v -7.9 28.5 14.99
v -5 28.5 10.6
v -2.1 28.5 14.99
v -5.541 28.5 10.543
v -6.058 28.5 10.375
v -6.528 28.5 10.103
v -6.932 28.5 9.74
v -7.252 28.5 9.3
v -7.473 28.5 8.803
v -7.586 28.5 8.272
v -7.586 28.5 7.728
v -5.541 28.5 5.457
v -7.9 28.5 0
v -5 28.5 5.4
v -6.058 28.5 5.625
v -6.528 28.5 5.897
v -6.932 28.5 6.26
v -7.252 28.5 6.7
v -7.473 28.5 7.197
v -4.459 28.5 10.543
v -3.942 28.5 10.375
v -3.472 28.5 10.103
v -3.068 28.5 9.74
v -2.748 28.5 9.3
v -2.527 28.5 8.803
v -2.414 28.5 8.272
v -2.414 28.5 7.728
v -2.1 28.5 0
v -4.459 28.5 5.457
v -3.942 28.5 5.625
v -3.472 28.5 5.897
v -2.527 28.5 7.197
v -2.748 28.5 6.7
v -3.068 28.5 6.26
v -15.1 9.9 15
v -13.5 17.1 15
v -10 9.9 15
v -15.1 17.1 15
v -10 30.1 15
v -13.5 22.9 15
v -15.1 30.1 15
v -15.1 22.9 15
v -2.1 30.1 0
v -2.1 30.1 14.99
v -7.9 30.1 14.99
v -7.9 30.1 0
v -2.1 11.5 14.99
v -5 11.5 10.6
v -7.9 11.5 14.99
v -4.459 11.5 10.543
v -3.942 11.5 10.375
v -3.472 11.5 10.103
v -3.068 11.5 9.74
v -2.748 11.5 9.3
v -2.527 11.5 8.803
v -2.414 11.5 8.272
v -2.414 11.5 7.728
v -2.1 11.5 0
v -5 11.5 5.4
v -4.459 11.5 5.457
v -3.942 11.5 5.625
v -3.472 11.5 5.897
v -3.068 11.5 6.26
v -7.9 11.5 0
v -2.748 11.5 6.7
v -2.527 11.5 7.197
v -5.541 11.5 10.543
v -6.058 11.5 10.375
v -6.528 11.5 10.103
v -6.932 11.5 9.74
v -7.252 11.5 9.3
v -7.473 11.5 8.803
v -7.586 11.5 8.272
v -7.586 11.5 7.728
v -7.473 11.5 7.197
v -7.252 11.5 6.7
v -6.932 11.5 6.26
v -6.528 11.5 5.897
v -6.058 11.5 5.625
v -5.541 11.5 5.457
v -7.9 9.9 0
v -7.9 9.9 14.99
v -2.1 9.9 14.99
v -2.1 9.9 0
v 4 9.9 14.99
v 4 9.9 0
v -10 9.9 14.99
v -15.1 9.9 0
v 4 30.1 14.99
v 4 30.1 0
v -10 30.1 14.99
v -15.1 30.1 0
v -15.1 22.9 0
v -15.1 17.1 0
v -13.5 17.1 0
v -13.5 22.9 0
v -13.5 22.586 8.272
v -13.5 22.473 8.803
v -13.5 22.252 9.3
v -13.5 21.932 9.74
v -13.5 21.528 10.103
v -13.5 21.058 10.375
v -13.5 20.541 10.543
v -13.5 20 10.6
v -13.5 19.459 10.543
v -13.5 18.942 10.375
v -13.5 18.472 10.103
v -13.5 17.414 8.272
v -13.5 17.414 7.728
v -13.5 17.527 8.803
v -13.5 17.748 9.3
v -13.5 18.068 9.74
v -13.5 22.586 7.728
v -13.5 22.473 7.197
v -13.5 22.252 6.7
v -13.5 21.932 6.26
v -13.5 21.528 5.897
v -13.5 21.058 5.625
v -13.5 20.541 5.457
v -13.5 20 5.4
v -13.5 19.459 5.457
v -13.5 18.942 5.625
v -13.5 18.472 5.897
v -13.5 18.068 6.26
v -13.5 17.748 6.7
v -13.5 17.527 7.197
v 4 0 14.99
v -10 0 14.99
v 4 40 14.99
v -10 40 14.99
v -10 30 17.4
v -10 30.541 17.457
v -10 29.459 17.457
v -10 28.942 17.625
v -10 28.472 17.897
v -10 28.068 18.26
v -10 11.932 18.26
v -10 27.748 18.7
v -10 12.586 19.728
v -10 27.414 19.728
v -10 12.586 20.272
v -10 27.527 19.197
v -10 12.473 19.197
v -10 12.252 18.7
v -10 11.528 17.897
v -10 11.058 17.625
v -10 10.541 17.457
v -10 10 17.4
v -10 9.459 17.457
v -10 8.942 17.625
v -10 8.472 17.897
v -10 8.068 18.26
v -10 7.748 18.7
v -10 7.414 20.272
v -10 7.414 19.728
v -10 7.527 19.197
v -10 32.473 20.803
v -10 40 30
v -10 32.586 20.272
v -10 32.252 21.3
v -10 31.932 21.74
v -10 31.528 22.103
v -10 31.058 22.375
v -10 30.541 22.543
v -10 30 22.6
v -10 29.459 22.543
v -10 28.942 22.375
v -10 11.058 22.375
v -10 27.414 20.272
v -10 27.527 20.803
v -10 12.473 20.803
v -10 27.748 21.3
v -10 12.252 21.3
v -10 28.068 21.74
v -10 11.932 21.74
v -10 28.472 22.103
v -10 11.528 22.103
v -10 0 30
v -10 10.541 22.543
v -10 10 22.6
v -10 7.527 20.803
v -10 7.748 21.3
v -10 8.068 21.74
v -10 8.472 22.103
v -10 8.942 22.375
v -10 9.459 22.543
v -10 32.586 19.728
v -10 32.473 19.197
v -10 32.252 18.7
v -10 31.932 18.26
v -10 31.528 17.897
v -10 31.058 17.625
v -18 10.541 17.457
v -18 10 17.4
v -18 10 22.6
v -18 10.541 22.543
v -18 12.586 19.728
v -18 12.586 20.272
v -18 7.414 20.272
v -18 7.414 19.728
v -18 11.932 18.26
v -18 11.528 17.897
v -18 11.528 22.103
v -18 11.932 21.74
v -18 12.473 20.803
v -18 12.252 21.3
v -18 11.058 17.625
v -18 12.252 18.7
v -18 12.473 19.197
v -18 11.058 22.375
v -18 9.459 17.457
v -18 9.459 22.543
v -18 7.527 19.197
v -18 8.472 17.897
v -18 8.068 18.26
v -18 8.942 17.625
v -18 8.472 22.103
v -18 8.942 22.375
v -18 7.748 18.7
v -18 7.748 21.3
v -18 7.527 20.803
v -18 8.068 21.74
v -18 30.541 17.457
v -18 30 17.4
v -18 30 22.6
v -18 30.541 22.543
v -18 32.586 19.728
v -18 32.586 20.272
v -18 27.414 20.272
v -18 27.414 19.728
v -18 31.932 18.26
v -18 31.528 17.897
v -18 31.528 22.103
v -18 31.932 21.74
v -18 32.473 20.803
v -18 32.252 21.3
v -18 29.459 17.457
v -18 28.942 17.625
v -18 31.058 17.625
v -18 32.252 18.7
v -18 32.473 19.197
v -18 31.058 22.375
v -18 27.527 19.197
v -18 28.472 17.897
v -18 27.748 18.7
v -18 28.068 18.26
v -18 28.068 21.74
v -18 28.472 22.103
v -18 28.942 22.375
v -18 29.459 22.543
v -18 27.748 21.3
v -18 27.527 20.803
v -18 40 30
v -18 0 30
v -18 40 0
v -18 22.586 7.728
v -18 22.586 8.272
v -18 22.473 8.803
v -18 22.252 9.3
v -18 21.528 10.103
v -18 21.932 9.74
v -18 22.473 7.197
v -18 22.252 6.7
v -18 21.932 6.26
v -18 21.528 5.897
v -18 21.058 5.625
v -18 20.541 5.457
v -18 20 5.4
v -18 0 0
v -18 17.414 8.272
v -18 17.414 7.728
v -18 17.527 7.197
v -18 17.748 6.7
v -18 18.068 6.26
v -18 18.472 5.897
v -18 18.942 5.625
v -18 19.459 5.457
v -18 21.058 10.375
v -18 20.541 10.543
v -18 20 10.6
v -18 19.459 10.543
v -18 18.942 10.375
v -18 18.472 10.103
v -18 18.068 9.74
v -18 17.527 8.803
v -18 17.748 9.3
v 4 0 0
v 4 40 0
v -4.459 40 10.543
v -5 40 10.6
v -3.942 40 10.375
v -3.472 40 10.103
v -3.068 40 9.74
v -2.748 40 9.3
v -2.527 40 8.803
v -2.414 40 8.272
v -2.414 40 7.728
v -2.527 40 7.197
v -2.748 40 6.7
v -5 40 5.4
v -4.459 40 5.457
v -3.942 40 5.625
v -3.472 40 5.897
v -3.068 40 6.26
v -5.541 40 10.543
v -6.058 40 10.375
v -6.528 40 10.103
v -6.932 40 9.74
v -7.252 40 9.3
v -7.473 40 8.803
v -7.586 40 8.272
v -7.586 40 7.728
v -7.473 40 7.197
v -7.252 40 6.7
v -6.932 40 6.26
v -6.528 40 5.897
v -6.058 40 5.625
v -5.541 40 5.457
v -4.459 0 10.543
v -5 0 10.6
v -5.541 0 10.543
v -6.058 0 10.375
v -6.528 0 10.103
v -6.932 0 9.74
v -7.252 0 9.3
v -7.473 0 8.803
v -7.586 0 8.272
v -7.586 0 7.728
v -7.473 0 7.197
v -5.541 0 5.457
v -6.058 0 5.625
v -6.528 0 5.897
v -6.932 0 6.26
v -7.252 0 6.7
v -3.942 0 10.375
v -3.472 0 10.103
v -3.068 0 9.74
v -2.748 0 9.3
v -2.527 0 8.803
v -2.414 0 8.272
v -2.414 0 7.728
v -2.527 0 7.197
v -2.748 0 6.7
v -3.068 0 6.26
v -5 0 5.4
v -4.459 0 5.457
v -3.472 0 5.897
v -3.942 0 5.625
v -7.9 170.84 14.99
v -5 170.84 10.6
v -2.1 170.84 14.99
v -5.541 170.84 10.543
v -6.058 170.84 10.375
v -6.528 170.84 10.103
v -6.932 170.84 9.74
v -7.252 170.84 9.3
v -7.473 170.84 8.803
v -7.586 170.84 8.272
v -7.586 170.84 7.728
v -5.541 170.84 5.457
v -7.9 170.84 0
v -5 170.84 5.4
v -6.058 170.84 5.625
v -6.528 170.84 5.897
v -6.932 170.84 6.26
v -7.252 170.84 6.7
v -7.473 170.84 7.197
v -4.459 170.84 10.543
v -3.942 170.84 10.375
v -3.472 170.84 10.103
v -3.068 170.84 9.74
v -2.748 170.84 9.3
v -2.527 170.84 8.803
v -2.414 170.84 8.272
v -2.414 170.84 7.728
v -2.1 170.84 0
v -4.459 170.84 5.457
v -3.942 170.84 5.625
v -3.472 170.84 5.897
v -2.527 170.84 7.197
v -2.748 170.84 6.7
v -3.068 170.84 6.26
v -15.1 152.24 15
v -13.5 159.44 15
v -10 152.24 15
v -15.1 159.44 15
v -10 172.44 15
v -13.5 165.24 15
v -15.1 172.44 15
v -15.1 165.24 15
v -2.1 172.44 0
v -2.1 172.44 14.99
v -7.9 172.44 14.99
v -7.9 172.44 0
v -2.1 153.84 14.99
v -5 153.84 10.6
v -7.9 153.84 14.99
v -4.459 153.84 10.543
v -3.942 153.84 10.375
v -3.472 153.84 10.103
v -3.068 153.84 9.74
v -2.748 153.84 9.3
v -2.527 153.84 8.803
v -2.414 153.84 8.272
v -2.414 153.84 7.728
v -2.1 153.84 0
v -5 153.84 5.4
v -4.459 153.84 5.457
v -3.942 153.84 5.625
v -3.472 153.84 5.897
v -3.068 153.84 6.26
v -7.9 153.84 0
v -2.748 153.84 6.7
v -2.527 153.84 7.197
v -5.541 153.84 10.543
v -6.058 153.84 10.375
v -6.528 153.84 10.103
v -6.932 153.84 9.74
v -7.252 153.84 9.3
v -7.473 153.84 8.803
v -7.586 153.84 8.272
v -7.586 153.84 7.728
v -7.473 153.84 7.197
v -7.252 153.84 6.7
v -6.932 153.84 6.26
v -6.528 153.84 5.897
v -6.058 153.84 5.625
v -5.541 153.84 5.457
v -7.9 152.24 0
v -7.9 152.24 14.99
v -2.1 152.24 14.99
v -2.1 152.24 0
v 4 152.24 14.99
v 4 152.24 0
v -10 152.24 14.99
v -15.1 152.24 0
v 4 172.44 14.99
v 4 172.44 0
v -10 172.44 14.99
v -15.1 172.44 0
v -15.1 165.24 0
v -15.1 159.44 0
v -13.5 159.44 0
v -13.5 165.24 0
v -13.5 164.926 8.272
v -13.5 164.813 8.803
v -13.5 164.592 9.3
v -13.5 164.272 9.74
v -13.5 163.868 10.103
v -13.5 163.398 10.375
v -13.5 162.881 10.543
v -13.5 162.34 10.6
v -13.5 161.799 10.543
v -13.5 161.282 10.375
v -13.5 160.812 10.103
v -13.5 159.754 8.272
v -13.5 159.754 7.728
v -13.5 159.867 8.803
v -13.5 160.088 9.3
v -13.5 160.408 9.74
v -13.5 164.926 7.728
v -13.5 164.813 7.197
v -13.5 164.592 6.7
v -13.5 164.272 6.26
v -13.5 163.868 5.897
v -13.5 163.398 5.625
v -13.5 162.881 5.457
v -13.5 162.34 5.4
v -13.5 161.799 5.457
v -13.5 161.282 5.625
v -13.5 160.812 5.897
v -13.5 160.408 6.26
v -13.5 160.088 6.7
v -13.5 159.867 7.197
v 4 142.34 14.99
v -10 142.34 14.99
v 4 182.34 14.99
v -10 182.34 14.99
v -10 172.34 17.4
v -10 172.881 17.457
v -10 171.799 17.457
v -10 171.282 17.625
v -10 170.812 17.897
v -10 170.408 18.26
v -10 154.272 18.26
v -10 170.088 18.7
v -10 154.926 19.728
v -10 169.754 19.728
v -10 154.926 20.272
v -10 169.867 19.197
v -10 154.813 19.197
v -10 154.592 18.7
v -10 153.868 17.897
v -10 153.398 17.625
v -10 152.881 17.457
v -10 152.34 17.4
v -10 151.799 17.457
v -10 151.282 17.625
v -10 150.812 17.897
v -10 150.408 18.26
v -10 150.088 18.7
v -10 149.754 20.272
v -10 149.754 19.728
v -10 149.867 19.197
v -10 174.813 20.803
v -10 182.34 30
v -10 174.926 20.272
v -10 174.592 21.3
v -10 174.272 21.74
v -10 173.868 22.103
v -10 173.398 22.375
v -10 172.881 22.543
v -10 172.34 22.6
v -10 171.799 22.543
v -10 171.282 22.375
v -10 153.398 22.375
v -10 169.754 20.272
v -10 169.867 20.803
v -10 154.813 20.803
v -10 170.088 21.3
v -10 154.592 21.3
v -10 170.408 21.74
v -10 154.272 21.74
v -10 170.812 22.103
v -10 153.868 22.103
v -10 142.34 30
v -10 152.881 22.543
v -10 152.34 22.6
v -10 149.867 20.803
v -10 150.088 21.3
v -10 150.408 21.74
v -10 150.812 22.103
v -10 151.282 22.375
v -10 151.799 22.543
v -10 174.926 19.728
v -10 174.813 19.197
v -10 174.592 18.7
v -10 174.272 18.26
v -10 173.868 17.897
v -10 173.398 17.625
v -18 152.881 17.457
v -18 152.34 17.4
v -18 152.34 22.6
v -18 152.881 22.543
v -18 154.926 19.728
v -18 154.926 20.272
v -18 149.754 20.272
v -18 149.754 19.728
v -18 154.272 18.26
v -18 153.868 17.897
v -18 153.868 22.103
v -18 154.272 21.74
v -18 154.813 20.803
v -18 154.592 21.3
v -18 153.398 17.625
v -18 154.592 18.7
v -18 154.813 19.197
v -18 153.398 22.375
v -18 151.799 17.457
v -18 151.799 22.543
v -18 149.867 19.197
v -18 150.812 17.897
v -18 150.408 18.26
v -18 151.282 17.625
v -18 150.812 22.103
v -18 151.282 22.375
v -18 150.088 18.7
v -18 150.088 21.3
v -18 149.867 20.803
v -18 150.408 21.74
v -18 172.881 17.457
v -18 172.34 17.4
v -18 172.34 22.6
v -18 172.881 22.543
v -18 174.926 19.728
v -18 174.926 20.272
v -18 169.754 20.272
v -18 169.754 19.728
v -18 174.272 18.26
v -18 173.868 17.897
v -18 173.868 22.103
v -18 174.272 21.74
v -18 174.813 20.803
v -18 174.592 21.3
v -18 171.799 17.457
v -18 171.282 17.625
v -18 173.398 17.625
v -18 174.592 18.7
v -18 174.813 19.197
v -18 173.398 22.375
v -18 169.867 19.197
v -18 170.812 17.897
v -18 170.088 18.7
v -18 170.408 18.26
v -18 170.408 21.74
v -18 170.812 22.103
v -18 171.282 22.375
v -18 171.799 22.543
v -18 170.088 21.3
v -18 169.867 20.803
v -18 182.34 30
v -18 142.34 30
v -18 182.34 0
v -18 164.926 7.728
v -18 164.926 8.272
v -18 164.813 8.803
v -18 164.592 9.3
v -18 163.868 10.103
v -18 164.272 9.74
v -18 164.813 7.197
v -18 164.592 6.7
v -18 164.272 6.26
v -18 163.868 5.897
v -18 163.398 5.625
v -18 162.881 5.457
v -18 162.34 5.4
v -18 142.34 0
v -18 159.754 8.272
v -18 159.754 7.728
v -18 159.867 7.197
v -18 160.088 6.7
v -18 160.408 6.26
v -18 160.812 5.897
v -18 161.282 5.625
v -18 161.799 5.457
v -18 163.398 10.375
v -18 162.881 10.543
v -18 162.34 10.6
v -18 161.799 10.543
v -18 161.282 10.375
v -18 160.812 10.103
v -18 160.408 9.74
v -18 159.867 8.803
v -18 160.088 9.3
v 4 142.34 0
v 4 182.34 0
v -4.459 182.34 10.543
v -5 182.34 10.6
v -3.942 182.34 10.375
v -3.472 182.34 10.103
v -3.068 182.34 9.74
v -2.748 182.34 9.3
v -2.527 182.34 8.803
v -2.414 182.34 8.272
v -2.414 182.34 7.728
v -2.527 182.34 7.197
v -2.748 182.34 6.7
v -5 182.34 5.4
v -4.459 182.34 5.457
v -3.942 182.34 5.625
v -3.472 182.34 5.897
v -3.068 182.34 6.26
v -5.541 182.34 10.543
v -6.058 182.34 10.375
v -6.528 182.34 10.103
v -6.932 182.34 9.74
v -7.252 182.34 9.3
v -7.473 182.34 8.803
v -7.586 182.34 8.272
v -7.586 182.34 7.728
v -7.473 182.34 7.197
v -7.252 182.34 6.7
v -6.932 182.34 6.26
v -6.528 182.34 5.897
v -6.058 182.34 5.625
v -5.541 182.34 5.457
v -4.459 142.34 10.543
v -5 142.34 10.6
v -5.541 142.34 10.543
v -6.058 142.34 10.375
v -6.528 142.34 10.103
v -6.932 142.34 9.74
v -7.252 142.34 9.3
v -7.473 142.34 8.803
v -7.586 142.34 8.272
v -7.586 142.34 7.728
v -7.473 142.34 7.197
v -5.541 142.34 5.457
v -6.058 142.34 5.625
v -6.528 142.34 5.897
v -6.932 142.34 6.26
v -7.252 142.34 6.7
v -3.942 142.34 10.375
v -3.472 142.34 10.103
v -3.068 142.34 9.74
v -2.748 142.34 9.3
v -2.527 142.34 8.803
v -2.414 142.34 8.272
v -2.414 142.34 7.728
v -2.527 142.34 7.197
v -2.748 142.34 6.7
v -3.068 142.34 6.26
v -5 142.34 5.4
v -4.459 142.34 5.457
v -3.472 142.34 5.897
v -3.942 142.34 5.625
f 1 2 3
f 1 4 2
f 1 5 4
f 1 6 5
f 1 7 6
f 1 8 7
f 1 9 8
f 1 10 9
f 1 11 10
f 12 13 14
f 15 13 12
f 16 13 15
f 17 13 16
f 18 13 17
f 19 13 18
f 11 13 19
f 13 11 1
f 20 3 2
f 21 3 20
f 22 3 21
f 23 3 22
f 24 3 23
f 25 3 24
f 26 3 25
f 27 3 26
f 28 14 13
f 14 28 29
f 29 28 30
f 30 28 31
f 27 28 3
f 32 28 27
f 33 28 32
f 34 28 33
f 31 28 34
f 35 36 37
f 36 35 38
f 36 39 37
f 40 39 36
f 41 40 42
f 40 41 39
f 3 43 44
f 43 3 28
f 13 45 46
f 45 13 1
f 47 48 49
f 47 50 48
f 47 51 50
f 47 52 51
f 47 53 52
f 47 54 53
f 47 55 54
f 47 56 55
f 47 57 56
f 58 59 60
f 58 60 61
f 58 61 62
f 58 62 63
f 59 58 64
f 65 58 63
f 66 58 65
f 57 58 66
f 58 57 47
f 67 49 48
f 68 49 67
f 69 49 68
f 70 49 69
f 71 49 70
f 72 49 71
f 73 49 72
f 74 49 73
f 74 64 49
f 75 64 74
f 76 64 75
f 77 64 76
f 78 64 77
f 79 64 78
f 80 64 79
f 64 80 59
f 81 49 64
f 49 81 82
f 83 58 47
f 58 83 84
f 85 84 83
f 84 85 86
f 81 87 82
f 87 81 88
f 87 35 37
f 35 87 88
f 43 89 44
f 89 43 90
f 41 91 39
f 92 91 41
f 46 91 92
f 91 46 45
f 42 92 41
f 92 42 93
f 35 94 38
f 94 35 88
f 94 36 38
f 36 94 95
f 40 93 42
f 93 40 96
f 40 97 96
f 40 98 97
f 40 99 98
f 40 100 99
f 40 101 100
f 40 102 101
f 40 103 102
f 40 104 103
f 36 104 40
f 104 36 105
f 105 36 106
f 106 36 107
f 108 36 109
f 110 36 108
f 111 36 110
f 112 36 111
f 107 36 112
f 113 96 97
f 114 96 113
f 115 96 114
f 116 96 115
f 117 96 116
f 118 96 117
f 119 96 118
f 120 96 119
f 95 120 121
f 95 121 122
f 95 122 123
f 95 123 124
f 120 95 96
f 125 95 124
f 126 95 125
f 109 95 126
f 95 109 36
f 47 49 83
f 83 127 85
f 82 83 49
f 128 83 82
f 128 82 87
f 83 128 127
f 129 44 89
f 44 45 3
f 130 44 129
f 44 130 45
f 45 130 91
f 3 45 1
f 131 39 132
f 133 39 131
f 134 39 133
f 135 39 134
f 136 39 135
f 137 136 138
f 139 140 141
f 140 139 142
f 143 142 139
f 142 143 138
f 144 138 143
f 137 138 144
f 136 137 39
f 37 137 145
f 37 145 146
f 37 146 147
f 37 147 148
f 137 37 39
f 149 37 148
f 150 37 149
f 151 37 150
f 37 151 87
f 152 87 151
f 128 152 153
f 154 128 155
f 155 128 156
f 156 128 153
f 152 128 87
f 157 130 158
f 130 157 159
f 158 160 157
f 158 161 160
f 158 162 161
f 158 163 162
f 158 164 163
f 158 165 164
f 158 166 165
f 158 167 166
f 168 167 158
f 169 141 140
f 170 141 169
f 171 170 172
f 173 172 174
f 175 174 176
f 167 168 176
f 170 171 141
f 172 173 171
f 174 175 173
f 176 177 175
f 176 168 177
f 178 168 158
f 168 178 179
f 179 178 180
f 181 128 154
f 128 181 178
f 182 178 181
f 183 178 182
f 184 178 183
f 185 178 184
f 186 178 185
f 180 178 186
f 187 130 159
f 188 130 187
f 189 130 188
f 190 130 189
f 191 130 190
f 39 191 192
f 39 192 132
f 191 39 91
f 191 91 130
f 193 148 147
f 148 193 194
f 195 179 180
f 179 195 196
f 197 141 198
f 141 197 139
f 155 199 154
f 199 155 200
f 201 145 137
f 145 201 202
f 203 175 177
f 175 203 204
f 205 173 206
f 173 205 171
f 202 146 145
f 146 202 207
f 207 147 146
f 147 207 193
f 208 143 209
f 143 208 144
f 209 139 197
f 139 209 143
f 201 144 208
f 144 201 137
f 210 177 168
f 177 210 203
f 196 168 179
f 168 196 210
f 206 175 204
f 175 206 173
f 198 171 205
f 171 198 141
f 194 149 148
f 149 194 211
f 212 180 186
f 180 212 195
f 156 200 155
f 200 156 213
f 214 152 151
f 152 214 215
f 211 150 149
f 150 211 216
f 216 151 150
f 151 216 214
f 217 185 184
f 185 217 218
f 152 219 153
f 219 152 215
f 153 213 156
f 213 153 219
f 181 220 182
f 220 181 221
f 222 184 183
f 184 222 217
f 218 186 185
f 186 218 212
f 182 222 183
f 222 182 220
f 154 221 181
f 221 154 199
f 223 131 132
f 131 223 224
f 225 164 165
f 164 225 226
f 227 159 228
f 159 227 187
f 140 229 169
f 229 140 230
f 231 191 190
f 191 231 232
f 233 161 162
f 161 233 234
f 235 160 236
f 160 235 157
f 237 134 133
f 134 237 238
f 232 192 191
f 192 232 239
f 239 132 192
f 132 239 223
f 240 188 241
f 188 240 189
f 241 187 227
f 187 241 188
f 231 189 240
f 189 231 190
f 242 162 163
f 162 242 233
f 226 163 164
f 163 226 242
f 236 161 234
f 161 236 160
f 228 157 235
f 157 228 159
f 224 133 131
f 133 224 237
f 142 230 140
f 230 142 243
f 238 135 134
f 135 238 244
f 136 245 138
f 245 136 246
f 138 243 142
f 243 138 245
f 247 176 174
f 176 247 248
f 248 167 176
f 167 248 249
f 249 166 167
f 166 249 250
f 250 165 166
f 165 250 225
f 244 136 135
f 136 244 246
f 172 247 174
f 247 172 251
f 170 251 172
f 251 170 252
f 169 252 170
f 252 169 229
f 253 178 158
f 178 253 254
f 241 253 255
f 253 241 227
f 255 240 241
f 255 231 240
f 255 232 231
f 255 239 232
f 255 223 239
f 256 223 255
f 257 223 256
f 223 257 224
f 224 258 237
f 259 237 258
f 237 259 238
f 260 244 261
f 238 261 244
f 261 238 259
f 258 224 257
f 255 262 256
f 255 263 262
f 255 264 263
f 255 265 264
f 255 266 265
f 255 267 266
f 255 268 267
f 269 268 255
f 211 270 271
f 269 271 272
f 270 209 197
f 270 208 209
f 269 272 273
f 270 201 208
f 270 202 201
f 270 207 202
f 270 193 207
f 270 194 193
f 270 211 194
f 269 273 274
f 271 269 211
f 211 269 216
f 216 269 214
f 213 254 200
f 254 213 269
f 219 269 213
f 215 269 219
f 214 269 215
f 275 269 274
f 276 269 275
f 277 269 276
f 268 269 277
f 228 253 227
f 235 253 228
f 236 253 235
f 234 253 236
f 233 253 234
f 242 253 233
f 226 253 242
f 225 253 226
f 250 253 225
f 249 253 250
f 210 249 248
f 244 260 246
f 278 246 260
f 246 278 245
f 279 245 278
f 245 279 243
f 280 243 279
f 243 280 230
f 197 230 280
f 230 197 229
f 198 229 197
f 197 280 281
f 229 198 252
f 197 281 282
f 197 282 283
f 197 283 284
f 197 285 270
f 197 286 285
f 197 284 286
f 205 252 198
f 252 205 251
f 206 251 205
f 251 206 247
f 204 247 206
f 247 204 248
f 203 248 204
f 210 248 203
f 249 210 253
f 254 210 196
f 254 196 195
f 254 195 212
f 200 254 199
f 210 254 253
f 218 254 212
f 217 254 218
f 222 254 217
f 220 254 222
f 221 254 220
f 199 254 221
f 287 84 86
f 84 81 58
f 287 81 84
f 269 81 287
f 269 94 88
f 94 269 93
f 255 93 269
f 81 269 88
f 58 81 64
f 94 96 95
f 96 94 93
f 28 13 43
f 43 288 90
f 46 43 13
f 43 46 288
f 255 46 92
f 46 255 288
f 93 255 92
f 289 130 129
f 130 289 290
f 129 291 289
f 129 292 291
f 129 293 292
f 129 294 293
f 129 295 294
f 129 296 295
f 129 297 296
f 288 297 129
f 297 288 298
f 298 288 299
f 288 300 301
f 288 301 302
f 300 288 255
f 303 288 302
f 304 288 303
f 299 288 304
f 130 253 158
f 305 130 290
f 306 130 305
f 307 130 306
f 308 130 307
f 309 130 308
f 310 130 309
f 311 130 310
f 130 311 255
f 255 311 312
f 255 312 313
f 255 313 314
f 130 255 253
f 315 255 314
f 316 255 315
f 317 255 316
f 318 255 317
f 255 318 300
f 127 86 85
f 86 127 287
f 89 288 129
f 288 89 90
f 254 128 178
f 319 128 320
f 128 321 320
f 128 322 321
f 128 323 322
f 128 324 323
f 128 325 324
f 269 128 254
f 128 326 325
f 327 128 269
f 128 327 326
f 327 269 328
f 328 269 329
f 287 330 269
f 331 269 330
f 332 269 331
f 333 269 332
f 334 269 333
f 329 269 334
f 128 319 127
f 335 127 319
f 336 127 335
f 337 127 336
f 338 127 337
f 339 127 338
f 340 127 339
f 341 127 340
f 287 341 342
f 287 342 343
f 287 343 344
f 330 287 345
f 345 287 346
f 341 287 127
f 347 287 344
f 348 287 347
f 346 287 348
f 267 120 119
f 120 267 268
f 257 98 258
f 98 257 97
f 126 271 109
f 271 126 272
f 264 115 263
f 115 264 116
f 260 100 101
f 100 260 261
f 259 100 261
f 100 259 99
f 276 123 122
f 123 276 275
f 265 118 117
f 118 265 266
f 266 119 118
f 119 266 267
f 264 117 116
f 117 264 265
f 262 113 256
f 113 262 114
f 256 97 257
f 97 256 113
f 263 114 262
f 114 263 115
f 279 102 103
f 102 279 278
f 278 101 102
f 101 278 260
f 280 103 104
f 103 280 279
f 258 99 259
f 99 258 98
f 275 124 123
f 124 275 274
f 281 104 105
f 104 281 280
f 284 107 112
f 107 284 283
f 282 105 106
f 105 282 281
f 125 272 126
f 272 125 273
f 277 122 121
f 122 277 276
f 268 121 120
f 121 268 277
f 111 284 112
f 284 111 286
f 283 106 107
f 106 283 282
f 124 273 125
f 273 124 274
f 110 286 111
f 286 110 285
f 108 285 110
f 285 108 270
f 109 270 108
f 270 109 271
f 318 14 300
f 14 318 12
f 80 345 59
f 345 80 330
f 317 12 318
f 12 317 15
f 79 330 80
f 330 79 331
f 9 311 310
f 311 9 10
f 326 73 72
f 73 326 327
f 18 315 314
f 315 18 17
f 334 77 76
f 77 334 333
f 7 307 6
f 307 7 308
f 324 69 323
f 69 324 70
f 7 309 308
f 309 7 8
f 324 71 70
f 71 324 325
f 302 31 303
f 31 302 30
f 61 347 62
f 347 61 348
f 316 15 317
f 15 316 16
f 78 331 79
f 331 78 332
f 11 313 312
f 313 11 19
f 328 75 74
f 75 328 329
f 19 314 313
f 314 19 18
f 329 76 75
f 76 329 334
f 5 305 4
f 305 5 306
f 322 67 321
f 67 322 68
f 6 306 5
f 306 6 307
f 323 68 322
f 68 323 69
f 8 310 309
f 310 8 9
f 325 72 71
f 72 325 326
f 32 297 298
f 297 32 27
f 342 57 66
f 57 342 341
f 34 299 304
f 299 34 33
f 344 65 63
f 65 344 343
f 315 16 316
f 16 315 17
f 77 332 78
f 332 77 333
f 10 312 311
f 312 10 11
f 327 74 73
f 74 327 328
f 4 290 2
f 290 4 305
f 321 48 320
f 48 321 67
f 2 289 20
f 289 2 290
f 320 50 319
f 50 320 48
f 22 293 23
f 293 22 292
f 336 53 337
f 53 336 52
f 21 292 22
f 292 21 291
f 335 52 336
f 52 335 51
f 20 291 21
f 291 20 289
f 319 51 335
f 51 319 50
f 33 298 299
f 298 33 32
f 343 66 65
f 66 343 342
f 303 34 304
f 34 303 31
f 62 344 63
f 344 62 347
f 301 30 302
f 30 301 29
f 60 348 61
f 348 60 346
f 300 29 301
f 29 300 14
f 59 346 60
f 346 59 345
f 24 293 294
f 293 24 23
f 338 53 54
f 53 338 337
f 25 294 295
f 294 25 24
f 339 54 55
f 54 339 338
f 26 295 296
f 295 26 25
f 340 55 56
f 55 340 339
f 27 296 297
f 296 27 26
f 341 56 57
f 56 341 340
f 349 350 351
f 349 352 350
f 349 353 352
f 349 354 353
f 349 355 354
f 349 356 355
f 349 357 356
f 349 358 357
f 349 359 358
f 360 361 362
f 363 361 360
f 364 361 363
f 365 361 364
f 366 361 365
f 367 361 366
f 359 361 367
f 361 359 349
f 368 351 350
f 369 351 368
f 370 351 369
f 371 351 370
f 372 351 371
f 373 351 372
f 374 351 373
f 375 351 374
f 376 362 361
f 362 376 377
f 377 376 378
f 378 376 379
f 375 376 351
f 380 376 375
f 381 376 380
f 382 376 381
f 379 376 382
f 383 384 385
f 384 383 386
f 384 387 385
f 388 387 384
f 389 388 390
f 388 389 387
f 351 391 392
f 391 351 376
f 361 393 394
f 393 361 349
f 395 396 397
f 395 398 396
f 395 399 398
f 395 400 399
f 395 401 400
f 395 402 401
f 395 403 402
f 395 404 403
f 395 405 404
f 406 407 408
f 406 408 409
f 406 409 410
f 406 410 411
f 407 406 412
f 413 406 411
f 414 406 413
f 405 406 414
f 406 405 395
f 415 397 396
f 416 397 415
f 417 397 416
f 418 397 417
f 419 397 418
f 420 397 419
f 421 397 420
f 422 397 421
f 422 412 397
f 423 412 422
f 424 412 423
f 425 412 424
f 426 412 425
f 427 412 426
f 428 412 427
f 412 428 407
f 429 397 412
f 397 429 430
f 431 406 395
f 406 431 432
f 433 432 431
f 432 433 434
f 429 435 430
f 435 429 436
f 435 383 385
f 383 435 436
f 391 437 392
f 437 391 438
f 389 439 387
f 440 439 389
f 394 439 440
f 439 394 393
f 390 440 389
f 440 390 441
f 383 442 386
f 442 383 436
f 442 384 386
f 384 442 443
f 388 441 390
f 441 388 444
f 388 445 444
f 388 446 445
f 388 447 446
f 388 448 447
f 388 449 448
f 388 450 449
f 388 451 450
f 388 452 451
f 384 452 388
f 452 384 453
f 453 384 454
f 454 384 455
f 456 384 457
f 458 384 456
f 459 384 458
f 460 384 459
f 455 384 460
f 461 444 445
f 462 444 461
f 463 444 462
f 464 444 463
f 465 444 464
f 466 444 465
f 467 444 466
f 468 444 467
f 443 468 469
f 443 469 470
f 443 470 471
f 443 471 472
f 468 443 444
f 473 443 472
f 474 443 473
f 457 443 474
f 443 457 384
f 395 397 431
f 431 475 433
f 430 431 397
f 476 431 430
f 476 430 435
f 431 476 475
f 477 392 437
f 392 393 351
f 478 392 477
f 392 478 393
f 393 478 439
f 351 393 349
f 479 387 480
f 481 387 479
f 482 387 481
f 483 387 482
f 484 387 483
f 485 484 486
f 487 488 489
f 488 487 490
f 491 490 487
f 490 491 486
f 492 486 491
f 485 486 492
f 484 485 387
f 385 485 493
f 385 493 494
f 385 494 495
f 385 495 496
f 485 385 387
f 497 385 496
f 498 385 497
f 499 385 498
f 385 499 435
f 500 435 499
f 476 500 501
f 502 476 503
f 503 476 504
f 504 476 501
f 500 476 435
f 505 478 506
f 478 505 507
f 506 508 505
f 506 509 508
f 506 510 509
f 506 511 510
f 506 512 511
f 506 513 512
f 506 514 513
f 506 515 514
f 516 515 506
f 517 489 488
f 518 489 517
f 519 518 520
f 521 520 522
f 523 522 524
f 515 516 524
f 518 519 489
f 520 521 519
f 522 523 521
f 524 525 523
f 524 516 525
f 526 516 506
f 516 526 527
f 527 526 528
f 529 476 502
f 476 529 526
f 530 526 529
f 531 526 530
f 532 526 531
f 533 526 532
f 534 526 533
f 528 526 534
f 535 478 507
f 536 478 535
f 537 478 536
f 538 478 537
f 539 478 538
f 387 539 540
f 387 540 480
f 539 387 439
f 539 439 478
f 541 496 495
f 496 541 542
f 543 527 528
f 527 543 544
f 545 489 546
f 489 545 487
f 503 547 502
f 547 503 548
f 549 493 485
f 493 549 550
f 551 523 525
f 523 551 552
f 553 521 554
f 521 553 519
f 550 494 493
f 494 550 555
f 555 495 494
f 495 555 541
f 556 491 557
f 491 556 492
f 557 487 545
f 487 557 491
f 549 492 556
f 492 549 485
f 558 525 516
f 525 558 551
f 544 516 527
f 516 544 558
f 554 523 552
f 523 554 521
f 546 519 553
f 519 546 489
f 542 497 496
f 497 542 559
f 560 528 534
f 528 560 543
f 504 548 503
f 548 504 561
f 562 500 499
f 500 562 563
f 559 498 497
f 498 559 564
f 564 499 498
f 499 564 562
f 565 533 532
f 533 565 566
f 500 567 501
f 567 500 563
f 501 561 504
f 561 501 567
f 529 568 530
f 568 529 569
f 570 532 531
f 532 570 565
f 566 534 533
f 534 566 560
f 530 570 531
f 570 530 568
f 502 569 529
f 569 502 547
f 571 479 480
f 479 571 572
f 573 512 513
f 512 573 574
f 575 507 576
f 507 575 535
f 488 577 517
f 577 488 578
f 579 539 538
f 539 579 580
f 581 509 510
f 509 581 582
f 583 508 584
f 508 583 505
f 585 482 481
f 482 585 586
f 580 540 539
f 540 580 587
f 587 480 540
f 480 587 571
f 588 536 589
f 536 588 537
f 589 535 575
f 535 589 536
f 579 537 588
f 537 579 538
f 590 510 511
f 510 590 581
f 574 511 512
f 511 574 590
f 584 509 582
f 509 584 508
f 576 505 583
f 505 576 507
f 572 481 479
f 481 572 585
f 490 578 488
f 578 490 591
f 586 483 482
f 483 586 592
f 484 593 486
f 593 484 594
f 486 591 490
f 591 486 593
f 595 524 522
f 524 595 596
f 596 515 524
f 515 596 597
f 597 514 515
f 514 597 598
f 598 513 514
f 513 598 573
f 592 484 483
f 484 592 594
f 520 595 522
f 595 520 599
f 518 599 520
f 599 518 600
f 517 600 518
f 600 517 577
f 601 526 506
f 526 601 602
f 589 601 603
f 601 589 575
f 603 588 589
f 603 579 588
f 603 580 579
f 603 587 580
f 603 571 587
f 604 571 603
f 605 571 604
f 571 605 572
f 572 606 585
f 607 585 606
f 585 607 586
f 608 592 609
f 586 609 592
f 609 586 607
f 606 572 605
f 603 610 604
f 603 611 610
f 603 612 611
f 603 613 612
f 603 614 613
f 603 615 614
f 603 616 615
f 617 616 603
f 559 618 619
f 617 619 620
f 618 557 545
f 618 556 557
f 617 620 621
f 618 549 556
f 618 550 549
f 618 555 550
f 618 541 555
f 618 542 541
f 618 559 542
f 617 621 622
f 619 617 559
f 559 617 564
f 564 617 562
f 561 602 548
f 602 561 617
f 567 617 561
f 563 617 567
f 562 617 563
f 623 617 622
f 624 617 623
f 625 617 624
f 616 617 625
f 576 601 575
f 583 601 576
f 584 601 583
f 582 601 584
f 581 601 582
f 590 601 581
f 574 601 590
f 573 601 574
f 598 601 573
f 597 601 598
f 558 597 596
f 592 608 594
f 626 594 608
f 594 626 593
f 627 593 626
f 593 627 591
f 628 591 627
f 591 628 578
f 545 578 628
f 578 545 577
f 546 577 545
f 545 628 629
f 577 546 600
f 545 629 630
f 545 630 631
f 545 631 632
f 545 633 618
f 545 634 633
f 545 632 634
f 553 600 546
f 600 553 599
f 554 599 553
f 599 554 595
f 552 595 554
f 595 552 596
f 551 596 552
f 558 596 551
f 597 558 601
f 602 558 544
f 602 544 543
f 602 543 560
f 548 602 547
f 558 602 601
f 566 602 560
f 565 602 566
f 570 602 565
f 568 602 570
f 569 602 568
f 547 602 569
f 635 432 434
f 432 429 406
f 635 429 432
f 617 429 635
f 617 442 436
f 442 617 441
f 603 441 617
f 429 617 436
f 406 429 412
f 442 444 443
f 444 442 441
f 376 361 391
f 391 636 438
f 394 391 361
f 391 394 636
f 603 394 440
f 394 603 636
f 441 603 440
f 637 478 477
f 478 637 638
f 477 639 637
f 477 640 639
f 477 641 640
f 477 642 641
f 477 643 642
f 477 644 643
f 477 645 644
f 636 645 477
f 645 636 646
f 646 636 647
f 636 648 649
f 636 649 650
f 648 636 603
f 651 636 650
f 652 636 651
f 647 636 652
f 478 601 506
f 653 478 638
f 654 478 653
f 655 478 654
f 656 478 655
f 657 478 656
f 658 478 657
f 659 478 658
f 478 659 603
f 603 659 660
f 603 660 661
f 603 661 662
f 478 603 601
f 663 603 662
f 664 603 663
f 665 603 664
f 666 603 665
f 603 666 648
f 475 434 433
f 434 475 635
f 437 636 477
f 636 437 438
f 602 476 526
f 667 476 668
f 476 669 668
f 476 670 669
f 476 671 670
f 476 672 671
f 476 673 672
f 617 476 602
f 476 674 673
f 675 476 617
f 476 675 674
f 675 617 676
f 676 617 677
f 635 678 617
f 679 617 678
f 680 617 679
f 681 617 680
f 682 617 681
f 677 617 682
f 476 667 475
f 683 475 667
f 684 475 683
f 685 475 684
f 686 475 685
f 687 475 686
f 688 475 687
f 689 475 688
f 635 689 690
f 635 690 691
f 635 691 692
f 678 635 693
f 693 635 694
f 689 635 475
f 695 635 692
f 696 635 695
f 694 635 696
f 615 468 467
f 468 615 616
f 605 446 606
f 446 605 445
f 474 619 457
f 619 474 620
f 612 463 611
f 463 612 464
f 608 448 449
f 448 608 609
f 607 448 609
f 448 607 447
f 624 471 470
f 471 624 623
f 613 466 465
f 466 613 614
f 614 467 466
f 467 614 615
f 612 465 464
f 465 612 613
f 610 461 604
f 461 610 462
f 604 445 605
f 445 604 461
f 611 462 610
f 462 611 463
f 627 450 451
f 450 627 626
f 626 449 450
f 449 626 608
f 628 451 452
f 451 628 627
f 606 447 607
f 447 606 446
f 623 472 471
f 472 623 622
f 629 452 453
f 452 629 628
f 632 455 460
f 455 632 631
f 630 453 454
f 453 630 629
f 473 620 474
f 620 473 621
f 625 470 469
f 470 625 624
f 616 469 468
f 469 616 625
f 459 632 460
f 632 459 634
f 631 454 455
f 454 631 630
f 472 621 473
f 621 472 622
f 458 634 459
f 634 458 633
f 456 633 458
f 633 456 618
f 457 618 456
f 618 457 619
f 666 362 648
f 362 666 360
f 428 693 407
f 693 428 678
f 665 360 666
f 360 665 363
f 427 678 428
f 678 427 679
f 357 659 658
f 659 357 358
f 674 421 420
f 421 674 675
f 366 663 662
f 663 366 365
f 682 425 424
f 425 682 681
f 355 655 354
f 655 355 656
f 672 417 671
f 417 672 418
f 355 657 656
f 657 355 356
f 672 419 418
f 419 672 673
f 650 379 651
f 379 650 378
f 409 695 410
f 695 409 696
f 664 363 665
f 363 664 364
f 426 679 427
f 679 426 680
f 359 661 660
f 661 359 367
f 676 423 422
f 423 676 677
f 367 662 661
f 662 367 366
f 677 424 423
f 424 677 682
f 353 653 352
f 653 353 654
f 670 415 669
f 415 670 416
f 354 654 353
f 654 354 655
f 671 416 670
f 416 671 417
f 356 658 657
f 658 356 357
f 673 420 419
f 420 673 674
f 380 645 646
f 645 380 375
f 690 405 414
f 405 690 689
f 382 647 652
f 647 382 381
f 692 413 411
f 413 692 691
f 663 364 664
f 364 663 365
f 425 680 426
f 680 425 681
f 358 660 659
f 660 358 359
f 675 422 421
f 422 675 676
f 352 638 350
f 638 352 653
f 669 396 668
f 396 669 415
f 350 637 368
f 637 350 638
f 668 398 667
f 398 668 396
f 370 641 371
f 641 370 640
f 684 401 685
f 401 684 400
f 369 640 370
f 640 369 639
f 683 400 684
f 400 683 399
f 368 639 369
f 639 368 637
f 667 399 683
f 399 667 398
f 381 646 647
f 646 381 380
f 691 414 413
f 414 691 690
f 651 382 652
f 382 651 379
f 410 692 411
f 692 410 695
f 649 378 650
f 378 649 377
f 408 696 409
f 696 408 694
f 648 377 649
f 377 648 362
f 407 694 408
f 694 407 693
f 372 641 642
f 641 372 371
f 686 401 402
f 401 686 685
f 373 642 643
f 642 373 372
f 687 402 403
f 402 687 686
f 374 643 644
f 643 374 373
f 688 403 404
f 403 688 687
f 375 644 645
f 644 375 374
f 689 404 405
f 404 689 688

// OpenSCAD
// file: inc/polyarc.scad
// Adapto Flex is licensed under the Creative Commons - GNU GPL license.
// http://creativecommons.org/licenses/GPL/2.0/
// Originated from Adapto https://github.com/rotorit/Adapto
include <./configuration.scad>

// Concepts pulled and modified to suit needs from
// http://hydraraptor.blogspot.com/2011/02/polyholes.html
// and
// http://reprap.org/wiki/ArcCompensation

// proper poly compensation for a cylinder including the config file $fn value
// this one is probably not needed but lets use it anyway
module polycyl(d, h){
	cylinder(r=(d/2)/cos(180/$fn), h=h);
}

// proper poly compensation when drilling a hole
module polyhole(d, h){
	cylinder(r=(d/2)/cos(180/$fn)+0.05, h=h);
}

// proper poly compensation for a 6 sided nut(measured flat to flat)
module polynut(d, h){
	cylinder(r=(d/2)/cos(180/6)+0.05, h=h, $fn=6);
}
// file: inc/configuration.scad
// Copyright (C) 2012 t00tie
// Adapto is licensed under the Creative Commons - GNU GPL license.
// http://creativecommons.org/licenses/GPL/2.0/

//==========================================================================//
// Configuration file for Adapto OpenSCAD files                             //
// Scroll past the definition section to change basic and advanced settings //
//==========================================================================//

//====================//
// Definition Section //
//====================//
// Frame and Walls
// frameX and frameY are the dimensions of the frame material when viewed on end(the end of an extrusion looks roughly like an X)
// frameX is the width of the frame material
// frameY is the height of the frame material
//   x
//  [ ]y
// these are used to find offsets for screw placing so screws meet the (slot in the) middle of the frame
frameX=20;// width of the frame material(alu, wood etc.)
frameY=20;// height of the frame material

// Print the hole_calibration.scad object to dial in the next 6 settings
// Google found http://www.fairburyfastener.com/xdims_metric_nuts.htm
M8=8.4;// diameter of M8 threaded rod
M5=5.3;// diameter of M5 threaded rod
M3=3.4;// diameter of M3 threaded rod
M8nut=13;// diameter of M8 nut flat to flat
M5nut=8;// diameter of M5 nut flat to flat
M3nut=5.6;// diameter of M3 nut flat to flat

M8nutThickness=6.8;// thickness of a standard M8 nut(nylock is 8mm)
M5nutThickness=4.7;// thickness of a standard M5 nut(nylock is 5mm)
M3nutThickness=2.4;// thickness of a standard M3 nut

// Acme Linear Screw and Nut
ACME14=6.5;// diameter of 1/4 inch ACME threaded rod in mm
ACME14nut=12.8;// diameter of ACME 1/4 inch nut flat to flat in mm
ACME14nutThickness=6.5;// thickness of ACME 1/4 inch nut in mm


// Linear Bearings
// format is IDxODxL
lm8uu=[8, 15, 24];
lm10uu=[10, 19, 29];
lm10luu=[10, 19, 55];
lm12uu=[12, 21, 30];

//rotary bearings
// format is IDxODxL
xx623=[3, 10, 4];
MF204=[4, 10, 4];
MF126=[6, 12, 4];
rotaryBearing=xx623;// for readability(can be changed if other bearings are used

//====================//
// Basic Config Items //
//====================//
smoothRod=8;				// diameter of smooth rods in mm
linearBearing=lm8uu;	// change this to the linear bearing you are using from the definitions section
zRod=M8;				// change this to the z threaded rod you are using from the definitions section
zRodnut=M5nut;		// change this to the z nut you are using from the definitions section
zRodnutThickness=M5nutThickness;	// change this to the z nut thickness you are using from the definitions section


//=======================//
// Advanced Config Items //
//=======================//
$fn=90;		// default resolution for parts, decrease if part compiling or stl/gcode is unmanageable
thickness=5;		// thickness of walls etc. in parts
pullyDiameter=12.2;	// GT2-20 toothed section diameter

// center of Z drive rod, relative to z travel rod
shaft_offset=[40, 15];
x_rod_thickness=20;
length_to_hole=43;
bearing_to_vslot=9.63;
belt_z_space = 16;
rail_separation = belt_z_space + x_rod_thickness + 2; // minimum space between the top and bottom 
tolerance=0.2;
// file: yIdler_x1.scad
// Adapto is licensed under the Creative Commons - GNU GPL license.
// http://creativecommons.org/licenses/GPL/2.0/
include <./inc/configuration.scad>
use <./inc/polyarc.scad>

*rotate([0,0,-90])yIdler(length=40,width=3);

rotate([90, 0, 90])
    yIdler_Retainer(height=2);

*translate([40,40,0])rotate([90, 0, 90])
    yIdler_Retainer();
module yIdler(length=10, width=0){
    
    difference(){

	union(){
	    
    hull(){
      cube([frameY+thickness*4, 1, rotaryBearing[1]]);
      translate([0, length+frameX+15+rotaryBearing[1]/2, rotaryBearing[1]/2])
		    rotate([0,90,0])
        polycyl(d=rotaryBearing[1], h=frameY+thickness*4);
    }
		
	}// end union
	
	// cutout to make arms
	translate([thickness*2-(width/2), 10, -1])
	    cube([frameY+width, frameX+length+5, rotaryBearing[1]+2]);
	
	// cutout to narrow for bearings
	translate([thickness*2+frameY/2-(rotaryBearing[2]*2+1)/2, length+frameX, -1])
	    cube([rotaryBearing[2]*2+1, frameX+15, rotaryBearing[1]+2]);
	
	// tensioner bolt and nut trap
	translate([thickness*2+frameY/2, -1, rotaryBearing[1]/2])
	    rotate([-90, 0, 0])
	    polycyl(d=M5, h=frameX);
	translate([thickness*2+frameY/2, 8, rotaryBearing[1]/2])
	    rotate([-90, 0, 0])
	    polynut(d=M5nut, h=frameX);
	
	// bearing bolt hole
	translate([-1, length+frameX+15+rotaryBearing[1]/3, rotaryBearing[1]/2])
	    rotate([0, 90, 0])
	    polycyl(d=rotaryBearing[0], h=frameY+thickness*4+2);

    }// end difference

}

module yIdler_Retainer(height=0){
    
    difference(){

	union(){
	    
	    translate([frameY+thickness*4+20, 0, 0])
		cube([rotaryBearing[1]+thickness*2+M5nut*2, frameX, height+thickness*3]);
		
	}// end union
	
	// cutout to capture tensioner
	translate([frameY+thickness*4+20+M5nut+thickness, -1, -1])
	    cube([rotaryBearing[1], frameX+2, height+thickness*2+1]);
	
	// bolt flats
	translate([frameY+thickness*4+20-1, -1, thickness])
	    cube([M5nut+1, frameX+2, thickness*2+1+height]);
	translate([frameY+thickness*4+20+thickness*2+M5nut+rotaryBearing[1], -1, thickness])
	    cube([M5nut+1, frameX+2, height+thickness*2+1]);
	
	// bolt holes
	translate([frameY+thickness*4+20+M5nut/2, frameX/2, -1])
	    polycyl(d=M5, h=frameX);
	translate([frameY+thickness*4+20+thickness*2+M5nut+rotaryBearing[1]+M5nut/2, frameX/2, -1])
	    polycyl(d=M5, h=frameX);

    }// end difference

}
// main file
use<yIdler_x1.scad>

use <inc/functions.scad>


// produce the bracket itself.
// bracket height shifts the bracket placement up/down. The default should
// raise the bed high enough to not be a problem
translate([0,0,30])mirror([1,0,1])yrail_mount(mount_thickness = 18, bracket_height = 5);
translate([0,102.34+40,30])mirror([1,0,1])yrail_mount(mount_thickness = 18, bracket_height = 5);
bracket_thick=8;
module tsection(bracket_height) {
  *rotate([90,0,0]){
    ext2020(l=40);
  }
  translate([0,0,0])rotate([90,0,0])
  { translate([-15,-10,-5])cube([20.01,20,60]); }
  translate([5,-(40/2),bracket_height])rotate([90,0,90])ext2020(l=40,teeth=[1,1,1,0]);
  translate([0,-(60/2),0])cylinder(r=2.6,h=20,$fn=30);
  translate([0,-(20/2),0])cylinder(r=2.6,h=20,$fn=30);
}

module yrail_mount(mount_thickness = 18, bracket_height = 5) {
  difference(){
    translate([0,0,10-14])cube([30,40,4+mount_thickness]);
    #translate([10,40,0])tsection(bracket_height);
    #translate([22,20,0])cylinder(r=2.6,h=20,$fn=30);
    #translate([22,45,5])rotate([90,0,0])cylinder(r=2.6,h=50,$fn=30);
  }
}
